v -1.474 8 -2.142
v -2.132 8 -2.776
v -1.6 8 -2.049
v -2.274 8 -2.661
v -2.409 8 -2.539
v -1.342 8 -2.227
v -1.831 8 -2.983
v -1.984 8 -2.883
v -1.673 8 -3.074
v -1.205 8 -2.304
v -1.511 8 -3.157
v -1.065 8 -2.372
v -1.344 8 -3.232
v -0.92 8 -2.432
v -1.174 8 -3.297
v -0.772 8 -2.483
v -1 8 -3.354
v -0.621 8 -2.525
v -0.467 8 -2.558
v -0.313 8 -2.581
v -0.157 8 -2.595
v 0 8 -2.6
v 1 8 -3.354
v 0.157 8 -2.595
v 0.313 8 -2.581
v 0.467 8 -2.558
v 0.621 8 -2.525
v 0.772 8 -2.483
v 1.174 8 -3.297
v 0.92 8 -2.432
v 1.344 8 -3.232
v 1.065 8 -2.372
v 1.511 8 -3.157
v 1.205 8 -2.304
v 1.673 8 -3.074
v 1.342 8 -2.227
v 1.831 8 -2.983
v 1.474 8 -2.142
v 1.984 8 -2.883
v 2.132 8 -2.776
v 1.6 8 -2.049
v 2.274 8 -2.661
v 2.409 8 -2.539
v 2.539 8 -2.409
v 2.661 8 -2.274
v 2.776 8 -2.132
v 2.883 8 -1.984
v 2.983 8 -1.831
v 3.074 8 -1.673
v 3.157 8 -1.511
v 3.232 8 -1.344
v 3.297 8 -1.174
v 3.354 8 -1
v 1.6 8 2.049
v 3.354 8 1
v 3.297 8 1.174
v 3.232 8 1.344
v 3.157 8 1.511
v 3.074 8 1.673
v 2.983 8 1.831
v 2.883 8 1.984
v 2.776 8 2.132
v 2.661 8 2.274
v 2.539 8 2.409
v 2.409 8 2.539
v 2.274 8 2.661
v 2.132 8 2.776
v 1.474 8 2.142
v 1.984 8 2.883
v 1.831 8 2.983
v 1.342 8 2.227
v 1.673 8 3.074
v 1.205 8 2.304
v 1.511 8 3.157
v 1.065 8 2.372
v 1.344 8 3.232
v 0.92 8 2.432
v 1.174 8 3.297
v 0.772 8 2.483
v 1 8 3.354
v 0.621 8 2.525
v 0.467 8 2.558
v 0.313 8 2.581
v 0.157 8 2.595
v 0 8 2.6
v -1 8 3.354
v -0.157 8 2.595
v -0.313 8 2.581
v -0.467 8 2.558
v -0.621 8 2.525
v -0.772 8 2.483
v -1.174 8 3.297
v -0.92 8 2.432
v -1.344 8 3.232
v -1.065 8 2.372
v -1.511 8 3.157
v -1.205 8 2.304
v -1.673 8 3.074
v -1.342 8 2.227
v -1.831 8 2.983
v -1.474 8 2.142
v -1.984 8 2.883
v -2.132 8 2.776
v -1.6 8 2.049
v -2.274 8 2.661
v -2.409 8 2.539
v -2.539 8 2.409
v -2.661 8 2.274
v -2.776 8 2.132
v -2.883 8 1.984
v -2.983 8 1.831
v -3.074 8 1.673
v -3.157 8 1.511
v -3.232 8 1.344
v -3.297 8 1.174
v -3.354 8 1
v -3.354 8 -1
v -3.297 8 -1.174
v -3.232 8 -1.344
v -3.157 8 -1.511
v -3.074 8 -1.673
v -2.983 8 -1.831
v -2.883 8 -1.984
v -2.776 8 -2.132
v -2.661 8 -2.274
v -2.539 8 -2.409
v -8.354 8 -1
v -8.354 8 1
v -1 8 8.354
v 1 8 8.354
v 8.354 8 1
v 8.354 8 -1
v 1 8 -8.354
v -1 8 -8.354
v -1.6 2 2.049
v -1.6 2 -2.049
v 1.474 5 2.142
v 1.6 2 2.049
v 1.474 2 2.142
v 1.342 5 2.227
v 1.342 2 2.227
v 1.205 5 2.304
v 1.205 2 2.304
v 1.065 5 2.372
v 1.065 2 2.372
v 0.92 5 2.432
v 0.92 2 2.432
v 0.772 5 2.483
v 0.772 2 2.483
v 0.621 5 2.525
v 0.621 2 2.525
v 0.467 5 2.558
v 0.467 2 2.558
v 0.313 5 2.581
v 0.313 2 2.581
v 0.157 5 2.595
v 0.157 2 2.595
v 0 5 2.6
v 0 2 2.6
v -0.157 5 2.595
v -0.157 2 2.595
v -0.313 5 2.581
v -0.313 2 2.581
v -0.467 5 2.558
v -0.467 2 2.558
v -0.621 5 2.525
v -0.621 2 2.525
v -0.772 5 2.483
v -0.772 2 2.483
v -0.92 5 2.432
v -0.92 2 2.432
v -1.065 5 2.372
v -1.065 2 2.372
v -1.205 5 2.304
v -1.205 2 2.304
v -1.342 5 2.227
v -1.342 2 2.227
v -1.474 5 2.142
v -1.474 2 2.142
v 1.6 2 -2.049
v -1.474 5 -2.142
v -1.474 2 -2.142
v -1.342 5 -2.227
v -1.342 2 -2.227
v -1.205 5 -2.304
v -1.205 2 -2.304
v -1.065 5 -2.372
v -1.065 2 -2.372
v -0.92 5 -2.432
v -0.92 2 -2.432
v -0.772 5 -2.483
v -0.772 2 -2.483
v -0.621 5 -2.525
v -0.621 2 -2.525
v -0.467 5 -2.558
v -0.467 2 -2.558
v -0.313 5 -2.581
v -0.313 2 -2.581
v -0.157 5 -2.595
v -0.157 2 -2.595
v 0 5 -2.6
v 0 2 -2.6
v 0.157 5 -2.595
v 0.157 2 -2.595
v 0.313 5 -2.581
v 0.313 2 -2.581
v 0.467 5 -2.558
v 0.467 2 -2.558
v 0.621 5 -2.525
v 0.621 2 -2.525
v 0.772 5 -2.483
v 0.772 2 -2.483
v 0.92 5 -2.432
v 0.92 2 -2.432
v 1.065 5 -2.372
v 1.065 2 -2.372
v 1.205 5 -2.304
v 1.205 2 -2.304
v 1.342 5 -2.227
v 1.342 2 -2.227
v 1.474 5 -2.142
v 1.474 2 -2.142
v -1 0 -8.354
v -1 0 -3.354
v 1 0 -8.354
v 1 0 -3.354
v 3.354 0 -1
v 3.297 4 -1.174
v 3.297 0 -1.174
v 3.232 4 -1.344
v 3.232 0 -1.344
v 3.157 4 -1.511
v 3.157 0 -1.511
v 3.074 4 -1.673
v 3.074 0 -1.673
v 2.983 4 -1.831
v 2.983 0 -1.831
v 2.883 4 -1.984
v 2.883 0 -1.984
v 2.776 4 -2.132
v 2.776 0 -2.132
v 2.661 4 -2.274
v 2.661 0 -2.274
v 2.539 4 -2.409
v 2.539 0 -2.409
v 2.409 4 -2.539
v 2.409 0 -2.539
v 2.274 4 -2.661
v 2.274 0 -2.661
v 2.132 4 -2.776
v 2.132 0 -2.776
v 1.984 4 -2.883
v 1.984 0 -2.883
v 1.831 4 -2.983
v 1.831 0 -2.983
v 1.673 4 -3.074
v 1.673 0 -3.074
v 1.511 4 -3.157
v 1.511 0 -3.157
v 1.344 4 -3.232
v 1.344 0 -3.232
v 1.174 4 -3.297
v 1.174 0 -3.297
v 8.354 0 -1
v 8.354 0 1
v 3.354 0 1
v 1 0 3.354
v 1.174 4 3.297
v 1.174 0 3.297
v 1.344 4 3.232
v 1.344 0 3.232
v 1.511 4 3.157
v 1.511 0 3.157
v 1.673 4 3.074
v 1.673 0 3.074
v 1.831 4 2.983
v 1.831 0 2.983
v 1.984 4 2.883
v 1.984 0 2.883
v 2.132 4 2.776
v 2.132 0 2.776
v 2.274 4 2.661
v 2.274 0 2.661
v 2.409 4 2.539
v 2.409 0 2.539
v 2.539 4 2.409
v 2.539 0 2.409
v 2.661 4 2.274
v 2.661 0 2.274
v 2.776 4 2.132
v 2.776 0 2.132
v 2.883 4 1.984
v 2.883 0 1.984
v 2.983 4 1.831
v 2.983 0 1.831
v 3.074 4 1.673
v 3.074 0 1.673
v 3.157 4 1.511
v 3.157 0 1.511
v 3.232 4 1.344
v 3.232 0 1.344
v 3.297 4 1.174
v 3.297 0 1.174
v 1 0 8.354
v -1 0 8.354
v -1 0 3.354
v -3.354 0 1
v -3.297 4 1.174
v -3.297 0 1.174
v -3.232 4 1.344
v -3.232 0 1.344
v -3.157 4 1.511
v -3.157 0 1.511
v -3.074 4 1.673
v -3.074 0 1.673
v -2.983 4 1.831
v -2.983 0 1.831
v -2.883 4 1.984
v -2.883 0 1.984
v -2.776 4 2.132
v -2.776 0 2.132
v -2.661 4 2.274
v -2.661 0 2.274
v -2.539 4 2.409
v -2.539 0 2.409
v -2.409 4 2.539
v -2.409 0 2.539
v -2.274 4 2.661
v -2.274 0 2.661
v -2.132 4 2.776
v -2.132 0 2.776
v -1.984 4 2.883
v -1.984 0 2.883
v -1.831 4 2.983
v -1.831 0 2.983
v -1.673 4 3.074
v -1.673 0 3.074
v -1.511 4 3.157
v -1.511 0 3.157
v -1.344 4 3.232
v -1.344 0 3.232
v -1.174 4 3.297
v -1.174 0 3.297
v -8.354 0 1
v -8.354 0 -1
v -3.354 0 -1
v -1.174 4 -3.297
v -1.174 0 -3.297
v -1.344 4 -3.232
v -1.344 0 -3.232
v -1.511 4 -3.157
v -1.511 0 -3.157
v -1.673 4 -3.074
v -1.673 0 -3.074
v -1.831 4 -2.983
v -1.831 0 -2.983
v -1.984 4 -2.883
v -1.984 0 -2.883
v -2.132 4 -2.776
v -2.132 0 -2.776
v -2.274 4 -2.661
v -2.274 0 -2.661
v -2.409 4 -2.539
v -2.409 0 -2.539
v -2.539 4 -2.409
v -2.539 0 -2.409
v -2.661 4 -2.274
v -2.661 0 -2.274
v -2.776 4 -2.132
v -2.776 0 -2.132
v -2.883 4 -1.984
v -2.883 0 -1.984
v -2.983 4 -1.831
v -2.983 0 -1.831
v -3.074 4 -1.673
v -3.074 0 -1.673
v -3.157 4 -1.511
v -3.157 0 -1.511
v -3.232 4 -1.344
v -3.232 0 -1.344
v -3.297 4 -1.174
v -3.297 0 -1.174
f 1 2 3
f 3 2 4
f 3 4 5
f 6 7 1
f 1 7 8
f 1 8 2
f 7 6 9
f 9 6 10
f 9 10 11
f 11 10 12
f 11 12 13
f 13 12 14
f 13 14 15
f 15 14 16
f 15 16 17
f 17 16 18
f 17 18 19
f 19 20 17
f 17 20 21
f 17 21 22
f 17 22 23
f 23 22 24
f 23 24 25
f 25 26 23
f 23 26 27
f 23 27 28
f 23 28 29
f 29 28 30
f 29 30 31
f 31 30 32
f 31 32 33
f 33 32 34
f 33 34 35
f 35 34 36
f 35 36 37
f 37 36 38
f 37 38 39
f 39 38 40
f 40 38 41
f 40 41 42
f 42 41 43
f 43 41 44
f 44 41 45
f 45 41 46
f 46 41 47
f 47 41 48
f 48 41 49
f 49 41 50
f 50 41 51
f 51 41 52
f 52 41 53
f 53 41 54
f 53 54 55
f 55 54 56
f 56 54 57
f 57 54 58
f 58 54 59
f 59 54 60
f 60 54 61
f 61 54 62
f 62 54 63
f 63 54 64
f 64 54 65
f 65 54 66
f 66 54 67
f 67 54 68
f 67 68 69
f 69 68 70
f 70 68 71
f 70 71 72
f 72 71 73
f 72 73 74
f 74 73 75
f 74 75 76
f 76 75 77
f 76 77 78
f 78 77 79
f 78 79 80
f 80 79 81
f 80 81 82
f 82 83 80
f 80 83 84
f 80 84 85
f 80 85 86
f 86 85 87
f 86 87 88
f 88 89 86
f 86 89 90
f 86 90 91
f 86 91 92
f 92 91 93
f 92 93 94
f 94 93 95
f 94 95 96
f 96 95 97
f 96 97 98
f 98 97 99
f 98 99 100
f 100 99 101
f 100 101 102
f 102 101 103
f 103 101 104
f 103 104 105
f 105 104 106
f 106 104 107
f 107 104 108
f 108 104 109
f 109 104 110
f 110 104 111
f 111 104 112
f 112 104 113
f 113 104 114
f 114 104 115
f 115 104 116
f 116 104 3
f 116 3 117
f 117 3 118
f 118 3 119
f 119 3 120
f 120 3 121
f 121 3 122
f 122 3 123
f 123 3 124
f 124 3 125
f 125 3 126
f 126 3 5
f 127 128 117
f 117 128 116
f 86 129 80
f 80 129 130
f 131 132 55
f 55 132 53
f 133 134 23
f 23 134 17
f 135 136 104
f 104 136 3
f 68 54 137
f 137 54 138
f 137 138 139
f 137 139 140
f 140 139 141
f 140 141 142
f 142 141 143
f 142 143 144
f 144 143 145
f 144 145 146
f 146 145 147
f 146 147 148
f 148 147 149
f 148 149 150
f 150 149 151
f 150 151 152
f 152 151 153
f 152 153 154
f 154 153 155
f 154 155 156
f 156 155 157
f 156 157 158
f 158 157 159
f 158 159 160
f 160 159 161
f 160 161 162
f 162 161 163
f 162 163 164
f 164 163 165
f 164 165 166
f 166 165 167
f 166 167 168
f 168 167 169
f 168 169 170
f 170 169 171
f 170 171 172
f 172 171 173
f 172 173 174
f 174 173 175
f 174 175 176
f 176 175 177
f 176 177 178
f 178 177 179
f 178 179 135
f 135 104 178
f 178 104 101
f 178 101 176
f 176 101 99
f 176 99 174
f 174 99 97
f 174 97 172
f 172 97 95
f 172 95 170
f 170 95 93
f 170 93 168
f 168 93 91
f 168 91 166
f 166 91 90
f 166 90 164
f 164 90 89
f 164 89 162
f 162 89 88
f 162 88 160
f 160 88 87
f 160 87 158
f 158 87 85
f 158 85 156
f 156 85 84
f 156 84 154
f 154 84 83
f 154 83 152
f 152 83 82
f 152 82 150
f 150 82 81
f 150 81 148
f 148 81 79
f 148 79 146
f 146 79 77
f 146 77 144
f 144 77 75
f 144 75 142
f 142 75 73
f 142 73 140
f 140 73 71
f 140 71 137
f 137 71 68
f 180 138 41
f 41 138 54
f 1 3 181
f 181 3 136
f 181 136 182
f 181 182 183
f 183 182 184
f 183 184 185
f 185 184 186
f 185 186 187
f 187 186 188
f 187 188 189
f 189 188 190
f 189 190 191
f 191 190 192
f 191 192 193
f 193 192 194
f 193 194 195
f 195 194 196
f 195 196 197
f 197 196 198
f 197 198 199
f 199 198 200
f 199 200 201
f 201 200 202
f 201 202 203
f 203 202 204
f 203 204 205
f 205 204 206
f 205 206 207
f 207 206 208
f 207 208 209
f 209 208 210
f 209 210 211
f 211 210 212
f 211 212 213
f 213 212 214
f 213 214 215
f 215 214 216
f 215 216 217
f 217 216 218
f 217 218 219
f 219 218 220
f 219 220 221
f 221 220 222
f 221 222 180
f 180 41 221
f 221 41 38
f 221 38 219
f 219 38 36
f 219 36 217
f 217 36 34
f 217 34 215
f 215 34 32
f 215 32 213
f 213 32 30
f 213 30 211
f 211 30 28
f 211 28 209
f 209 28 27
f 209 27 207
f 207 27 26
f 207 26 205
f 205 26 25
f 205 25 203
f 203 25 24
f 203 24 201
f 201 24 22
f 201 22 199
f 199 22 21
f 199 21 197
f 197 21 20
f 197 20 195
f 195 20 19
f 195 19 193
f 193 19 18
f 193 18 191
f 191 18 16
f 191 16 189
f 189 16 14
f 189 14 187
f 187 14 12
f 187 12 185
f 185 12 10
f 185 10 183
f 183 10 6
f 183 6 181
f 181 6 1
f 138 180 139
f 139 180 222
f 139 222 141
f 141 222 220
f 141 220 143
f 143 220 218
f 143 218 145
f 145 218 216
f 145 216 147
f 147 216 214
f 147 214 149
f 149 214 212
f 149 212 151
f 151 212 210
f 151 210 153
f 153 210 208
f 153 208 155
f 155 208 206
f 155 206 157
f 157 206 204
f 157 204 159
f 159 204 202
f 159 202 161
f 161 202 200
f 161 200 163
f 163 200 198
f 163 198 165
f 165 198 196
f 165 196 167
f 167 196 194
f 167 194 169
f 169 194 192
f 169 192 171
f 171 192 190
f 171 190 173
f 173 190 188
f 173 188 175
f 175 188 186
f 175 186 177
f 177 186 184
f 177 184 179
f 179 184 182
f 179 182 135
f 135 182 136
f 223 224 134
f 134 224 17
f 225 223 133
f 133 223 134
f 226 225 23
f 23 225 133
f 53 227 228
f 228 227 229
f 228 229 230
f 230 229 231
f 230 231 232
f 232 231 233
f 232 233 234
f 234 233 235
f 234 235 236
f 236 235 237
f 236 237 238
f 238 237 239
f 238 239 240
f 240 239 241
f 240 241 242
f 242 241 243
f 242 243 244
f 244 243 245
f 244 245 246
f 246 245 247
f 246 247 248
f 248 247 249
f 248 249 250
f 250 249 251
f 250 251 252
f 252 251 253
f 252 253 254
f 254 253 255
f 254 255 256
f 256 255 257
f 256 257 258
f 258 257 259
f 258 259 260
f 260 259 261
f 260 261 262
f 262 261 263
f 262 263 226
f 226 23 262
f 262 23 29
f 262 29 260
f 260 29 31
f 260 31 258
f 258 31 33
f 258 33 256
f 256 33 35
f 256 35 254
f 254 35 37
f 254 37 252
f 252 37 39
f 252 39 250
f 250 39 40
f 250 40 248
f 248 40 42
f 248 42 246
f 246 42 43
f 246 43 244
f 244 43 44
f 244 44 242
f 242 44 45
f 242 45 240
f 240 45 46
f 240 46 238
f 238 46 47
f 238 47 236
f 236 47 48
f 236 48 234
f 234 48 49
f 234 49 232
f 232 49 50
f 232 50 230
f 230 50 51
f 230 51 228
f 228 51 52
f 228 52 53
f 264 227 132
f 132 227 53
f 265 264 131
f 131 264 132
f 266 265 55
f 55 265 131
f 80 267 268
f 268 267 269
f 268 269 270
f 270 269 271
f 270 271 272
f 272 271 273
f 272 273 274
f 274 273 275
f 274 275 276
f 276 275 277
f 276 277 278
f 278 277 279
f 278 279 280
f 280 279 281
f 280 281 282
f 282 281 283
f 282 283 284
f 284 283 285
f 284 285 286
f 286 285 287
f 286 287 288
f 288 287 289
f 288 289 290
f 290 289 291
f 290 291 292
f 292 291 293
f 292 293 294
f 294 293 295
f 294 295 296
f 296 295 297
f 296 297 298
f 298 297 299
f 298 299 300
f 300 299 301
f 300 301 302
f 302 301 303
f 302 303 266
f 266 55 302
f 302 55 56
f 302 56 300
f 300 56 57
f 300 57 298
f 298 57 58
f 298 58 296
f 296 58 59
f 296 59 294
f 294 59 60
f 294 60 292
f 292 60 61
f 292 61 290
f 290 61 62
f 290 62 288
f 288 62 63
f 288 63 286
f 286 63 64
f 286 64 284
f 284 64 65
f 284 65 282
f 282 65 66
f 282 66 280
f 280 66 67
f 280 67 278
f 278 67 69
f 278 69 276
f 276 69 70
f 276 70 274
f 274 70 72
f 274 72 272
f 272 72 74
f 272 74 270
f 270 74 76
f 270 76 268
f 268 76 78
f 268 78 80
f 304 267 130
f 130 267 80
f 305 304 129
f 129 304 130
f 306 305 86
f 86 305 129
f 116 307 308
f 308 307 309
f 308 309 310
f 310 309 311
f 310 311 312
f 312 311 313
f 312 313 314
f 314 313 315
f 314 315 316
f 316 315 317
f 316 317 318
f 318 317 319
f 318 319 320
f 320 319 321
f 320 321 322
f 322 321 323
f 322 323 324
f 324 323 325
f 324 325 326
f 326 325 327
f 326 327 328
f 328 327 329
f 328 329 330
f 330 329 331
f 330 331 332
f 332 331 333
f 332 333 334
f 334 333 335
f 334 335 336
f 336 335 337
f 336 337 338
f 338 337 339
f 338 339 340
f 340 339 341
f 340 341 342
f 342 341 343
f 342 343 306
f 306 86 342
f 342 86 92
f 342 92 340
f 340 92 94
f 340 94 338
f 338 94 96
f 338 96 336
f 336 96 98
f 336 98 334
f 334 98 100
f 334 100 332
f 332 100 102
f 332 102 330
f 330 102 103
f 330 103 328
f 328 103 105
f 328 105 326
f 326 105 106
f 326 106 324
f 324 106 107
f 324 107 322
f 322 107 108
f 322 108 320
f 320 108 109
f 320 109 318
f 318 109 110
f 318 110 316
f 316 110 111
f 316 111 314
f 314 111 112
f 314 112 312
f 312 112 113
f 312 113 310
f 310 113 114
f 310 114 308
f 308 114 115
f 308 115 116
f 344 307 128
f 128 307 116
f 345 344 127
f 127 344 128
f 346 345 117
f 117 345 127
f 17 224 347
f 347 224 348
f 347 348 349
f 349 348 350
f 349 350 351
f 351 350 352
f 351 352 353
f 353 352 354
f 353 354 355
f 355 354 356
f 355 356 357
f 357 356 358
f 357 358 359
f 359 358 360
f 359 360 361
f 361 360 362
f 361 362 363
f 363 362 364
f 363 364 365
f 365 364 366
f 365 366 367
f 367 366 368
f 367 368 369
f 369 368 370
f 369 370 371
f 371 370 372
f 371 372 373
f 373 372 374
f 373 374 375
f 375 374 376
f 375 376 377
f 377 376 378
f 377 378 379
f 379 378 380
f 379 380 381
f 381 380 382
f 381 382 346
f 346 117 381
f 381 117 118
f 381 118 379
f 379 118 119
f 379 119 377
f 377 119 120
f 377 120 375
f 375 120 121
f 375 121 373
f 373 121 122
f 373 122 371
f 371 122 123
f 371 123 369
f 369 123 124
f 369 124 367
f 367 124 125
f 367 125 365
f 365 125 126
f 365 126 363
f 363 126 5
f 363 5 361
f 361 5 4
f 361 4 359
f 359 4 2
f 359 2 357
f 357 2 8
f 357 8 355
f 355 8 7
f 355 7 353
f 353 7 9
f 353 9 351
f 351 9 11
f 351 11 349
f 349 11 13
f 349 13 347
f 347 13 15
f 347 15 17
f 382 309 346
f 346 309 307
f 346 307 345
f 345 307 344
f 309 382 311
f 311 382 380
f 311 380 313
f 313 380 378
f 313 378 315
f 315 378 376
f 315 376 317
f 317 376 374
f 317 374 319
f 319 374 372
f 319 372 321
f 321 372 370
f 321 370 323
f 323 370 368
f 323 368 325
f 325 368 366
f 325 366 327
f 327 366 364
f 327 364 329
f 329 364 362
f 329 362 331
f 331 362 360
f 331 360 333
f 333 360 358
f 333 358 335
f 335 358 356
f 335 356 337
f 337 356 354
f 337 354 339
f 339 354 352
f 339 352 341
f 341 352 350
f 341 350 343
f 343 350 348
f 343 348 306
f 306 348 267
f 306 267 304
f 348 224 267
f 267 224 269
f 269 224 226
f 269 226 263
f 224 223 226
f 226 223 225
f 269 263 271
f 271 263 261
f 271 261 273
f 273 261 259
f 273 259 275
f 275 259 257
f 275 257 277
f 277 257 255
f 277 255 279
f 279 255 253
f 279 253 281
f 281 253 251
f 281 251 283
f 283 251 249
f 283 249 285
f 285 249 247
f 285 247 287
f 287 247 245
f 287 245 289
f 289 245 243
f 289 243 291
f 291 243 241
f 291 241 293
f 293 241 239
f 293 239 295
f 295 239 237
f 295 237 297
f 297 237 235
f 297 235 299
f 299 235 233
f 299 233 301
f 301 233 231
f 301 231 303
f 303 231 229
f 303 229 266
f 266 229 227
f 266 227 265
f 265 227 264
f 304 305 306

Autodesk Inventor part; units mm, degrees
ref_plane "YZ Plane" through (0, 0, 0) normal (1, 0, 0) x (0, 1, 0)
ref_plane "XZ Plane" through (0, 0, 0) normal (0, 1, 0) x (-1, 0, 0)
ref_plane "XY Plane" through (0, 0, 0) normal (0, 0, 1) x (1, 0, 0)
sketch "Sketch1" plane through (0, 0, 0) normal (0, 1, 0) x (-1, 0, 0)
  circle A0 centre (0, 0) radius 3.5
  line L0 (1, -3.3541) -> (-1, -3.3541) construction
  line L1 (-1, -3.3541) -> (-1, -8.3541)
  line L2 (-1, -8.3541) -> (1, -8.3541)
  line L3 (1, -8.3541) -> (1, -3.3541)
  line L4 (0, 0) -> (0, 3.5) construction
  line L5 (8.3541, 1) -> (3.3541, 1)
  line L6 (8.3541, -1) -> (8.3541, 1)
  line L7 (3.3541, -1) -> (8.3541, -1)
  line L8 (-1, 8.3541) -> (-1, 3.3541)
  line L9 (1, 8.3541) -> (-1, 8.3541)
  line L10 (1, 3.3541) -> (1, 8.3541)
  line L11 (-8.3541, -1) -> (-3.3541, -1)
  line L12 (-8.3541, 1) -> (-8.3541, -1)
  line L13 (-3.3541, 1) -> (-8.3541, 1)
  line L14 (3.3541, -1) -> (1, -3.3541) construction
  line L15 (8.3541, -1) -> (1, -8.3541) construction
  dimension "d0" = 7
  dimension "d1" = 2
  dimension "d2" = 5
  dimension "d5" = 360
  dimension "d7" = 3.3292
  dimension "d8" = 10.4003
  dimension "d9" = 3.5355
extrude "Extrusion1" add sketch "Sketch1" along normal blind 5
sketch "Sketch2" plane through (0, 5, 0) normal (0, 1, 0) x (1, 0, 0)
  circle A0 centre (0, 0) radius 2.6
  line L0 (-1.6, -2.0494) -> (-1.6, 2.0494)
  line L1 (1.6, -2.0494) -> (1.6, 2.0494)
  line L2 (0, 0) -> (0, 2.6) construction
  dimension "d12" = 5.2
  dimension "d13" = 3.2
extrude "Extrusion2" cut sketch "Sketch2" against normal blind 3 contours L1 A0 L0
sketch "Sketch3" plane through (0, 5, 0) normal (0, 1, 0) x (1, 0, 0)
  line L0 (-1.6, -2.0494) -> (-1.6, 2.0494) projected
  arc A0 (1.6, 2.0494) -> (-1.6, 2.0494) centre (0, 0) ccw projected
  line L1 (1.6, 2.0494) -> (1.6, -2.0494) projected
  arc A1 (-1.6, -2.0494) -> (1.6, -2.0494) centre (0, 0) ccw projected
  arc A2 (-1, 3.3541) -> (-3.3541, 1) centre (0, 0) ccw projected
  line L2 (-3.3541, 1) -> (-8.3541, 1) projected
  line L3 (-8.3541, 1) -> (-8.3541, -1) projected
  line L4 (-8.3541, -1) -> (-3.3541, -1) projected
  arc A3 (-3.3541, -1) -> (-1, -3.3541) centre (0, 0) ccw projected
  line L5 (-1, -3.3541) -> (-1, -8.3541) projected
  line L6 (-1, -8.3541) -> (1, -8.3541) projected
  line L7 (1, -8.3541) -> (1, -3.3541) projected
  arc A4 (1, -3.3541) -> (3.3541, -1) centre (0, 0) ccw projected
  line L8 (3.3541, -1) -> (8.3541, -1) projected
  line L9 (8.3541, -1) -> (8.3541, 1) projected
  line L10 (8.3541, 1) -> (3.3541, 1) projected
  arc A5 (3.3541, 1) -> (1, 3.3541) centre (0, 0) ccw projected
  line L11 (1, 3.3541) -> (1, 8.3541) projected
  line L12 (1, 8.3541) -> (-1, 8.3541) projected
  line L13 (-1, 8.3541) -> (-1, 3.3541) projected
ref_plane "Work Plane1" through (2.25, 8, 0) normal (0, -1, 0) x (-1, 0, 0)
extrude "Extrusion3" add sketch "Sketch3" along normal up to surface (3 mm away)
properties part number "paddle rotor"
